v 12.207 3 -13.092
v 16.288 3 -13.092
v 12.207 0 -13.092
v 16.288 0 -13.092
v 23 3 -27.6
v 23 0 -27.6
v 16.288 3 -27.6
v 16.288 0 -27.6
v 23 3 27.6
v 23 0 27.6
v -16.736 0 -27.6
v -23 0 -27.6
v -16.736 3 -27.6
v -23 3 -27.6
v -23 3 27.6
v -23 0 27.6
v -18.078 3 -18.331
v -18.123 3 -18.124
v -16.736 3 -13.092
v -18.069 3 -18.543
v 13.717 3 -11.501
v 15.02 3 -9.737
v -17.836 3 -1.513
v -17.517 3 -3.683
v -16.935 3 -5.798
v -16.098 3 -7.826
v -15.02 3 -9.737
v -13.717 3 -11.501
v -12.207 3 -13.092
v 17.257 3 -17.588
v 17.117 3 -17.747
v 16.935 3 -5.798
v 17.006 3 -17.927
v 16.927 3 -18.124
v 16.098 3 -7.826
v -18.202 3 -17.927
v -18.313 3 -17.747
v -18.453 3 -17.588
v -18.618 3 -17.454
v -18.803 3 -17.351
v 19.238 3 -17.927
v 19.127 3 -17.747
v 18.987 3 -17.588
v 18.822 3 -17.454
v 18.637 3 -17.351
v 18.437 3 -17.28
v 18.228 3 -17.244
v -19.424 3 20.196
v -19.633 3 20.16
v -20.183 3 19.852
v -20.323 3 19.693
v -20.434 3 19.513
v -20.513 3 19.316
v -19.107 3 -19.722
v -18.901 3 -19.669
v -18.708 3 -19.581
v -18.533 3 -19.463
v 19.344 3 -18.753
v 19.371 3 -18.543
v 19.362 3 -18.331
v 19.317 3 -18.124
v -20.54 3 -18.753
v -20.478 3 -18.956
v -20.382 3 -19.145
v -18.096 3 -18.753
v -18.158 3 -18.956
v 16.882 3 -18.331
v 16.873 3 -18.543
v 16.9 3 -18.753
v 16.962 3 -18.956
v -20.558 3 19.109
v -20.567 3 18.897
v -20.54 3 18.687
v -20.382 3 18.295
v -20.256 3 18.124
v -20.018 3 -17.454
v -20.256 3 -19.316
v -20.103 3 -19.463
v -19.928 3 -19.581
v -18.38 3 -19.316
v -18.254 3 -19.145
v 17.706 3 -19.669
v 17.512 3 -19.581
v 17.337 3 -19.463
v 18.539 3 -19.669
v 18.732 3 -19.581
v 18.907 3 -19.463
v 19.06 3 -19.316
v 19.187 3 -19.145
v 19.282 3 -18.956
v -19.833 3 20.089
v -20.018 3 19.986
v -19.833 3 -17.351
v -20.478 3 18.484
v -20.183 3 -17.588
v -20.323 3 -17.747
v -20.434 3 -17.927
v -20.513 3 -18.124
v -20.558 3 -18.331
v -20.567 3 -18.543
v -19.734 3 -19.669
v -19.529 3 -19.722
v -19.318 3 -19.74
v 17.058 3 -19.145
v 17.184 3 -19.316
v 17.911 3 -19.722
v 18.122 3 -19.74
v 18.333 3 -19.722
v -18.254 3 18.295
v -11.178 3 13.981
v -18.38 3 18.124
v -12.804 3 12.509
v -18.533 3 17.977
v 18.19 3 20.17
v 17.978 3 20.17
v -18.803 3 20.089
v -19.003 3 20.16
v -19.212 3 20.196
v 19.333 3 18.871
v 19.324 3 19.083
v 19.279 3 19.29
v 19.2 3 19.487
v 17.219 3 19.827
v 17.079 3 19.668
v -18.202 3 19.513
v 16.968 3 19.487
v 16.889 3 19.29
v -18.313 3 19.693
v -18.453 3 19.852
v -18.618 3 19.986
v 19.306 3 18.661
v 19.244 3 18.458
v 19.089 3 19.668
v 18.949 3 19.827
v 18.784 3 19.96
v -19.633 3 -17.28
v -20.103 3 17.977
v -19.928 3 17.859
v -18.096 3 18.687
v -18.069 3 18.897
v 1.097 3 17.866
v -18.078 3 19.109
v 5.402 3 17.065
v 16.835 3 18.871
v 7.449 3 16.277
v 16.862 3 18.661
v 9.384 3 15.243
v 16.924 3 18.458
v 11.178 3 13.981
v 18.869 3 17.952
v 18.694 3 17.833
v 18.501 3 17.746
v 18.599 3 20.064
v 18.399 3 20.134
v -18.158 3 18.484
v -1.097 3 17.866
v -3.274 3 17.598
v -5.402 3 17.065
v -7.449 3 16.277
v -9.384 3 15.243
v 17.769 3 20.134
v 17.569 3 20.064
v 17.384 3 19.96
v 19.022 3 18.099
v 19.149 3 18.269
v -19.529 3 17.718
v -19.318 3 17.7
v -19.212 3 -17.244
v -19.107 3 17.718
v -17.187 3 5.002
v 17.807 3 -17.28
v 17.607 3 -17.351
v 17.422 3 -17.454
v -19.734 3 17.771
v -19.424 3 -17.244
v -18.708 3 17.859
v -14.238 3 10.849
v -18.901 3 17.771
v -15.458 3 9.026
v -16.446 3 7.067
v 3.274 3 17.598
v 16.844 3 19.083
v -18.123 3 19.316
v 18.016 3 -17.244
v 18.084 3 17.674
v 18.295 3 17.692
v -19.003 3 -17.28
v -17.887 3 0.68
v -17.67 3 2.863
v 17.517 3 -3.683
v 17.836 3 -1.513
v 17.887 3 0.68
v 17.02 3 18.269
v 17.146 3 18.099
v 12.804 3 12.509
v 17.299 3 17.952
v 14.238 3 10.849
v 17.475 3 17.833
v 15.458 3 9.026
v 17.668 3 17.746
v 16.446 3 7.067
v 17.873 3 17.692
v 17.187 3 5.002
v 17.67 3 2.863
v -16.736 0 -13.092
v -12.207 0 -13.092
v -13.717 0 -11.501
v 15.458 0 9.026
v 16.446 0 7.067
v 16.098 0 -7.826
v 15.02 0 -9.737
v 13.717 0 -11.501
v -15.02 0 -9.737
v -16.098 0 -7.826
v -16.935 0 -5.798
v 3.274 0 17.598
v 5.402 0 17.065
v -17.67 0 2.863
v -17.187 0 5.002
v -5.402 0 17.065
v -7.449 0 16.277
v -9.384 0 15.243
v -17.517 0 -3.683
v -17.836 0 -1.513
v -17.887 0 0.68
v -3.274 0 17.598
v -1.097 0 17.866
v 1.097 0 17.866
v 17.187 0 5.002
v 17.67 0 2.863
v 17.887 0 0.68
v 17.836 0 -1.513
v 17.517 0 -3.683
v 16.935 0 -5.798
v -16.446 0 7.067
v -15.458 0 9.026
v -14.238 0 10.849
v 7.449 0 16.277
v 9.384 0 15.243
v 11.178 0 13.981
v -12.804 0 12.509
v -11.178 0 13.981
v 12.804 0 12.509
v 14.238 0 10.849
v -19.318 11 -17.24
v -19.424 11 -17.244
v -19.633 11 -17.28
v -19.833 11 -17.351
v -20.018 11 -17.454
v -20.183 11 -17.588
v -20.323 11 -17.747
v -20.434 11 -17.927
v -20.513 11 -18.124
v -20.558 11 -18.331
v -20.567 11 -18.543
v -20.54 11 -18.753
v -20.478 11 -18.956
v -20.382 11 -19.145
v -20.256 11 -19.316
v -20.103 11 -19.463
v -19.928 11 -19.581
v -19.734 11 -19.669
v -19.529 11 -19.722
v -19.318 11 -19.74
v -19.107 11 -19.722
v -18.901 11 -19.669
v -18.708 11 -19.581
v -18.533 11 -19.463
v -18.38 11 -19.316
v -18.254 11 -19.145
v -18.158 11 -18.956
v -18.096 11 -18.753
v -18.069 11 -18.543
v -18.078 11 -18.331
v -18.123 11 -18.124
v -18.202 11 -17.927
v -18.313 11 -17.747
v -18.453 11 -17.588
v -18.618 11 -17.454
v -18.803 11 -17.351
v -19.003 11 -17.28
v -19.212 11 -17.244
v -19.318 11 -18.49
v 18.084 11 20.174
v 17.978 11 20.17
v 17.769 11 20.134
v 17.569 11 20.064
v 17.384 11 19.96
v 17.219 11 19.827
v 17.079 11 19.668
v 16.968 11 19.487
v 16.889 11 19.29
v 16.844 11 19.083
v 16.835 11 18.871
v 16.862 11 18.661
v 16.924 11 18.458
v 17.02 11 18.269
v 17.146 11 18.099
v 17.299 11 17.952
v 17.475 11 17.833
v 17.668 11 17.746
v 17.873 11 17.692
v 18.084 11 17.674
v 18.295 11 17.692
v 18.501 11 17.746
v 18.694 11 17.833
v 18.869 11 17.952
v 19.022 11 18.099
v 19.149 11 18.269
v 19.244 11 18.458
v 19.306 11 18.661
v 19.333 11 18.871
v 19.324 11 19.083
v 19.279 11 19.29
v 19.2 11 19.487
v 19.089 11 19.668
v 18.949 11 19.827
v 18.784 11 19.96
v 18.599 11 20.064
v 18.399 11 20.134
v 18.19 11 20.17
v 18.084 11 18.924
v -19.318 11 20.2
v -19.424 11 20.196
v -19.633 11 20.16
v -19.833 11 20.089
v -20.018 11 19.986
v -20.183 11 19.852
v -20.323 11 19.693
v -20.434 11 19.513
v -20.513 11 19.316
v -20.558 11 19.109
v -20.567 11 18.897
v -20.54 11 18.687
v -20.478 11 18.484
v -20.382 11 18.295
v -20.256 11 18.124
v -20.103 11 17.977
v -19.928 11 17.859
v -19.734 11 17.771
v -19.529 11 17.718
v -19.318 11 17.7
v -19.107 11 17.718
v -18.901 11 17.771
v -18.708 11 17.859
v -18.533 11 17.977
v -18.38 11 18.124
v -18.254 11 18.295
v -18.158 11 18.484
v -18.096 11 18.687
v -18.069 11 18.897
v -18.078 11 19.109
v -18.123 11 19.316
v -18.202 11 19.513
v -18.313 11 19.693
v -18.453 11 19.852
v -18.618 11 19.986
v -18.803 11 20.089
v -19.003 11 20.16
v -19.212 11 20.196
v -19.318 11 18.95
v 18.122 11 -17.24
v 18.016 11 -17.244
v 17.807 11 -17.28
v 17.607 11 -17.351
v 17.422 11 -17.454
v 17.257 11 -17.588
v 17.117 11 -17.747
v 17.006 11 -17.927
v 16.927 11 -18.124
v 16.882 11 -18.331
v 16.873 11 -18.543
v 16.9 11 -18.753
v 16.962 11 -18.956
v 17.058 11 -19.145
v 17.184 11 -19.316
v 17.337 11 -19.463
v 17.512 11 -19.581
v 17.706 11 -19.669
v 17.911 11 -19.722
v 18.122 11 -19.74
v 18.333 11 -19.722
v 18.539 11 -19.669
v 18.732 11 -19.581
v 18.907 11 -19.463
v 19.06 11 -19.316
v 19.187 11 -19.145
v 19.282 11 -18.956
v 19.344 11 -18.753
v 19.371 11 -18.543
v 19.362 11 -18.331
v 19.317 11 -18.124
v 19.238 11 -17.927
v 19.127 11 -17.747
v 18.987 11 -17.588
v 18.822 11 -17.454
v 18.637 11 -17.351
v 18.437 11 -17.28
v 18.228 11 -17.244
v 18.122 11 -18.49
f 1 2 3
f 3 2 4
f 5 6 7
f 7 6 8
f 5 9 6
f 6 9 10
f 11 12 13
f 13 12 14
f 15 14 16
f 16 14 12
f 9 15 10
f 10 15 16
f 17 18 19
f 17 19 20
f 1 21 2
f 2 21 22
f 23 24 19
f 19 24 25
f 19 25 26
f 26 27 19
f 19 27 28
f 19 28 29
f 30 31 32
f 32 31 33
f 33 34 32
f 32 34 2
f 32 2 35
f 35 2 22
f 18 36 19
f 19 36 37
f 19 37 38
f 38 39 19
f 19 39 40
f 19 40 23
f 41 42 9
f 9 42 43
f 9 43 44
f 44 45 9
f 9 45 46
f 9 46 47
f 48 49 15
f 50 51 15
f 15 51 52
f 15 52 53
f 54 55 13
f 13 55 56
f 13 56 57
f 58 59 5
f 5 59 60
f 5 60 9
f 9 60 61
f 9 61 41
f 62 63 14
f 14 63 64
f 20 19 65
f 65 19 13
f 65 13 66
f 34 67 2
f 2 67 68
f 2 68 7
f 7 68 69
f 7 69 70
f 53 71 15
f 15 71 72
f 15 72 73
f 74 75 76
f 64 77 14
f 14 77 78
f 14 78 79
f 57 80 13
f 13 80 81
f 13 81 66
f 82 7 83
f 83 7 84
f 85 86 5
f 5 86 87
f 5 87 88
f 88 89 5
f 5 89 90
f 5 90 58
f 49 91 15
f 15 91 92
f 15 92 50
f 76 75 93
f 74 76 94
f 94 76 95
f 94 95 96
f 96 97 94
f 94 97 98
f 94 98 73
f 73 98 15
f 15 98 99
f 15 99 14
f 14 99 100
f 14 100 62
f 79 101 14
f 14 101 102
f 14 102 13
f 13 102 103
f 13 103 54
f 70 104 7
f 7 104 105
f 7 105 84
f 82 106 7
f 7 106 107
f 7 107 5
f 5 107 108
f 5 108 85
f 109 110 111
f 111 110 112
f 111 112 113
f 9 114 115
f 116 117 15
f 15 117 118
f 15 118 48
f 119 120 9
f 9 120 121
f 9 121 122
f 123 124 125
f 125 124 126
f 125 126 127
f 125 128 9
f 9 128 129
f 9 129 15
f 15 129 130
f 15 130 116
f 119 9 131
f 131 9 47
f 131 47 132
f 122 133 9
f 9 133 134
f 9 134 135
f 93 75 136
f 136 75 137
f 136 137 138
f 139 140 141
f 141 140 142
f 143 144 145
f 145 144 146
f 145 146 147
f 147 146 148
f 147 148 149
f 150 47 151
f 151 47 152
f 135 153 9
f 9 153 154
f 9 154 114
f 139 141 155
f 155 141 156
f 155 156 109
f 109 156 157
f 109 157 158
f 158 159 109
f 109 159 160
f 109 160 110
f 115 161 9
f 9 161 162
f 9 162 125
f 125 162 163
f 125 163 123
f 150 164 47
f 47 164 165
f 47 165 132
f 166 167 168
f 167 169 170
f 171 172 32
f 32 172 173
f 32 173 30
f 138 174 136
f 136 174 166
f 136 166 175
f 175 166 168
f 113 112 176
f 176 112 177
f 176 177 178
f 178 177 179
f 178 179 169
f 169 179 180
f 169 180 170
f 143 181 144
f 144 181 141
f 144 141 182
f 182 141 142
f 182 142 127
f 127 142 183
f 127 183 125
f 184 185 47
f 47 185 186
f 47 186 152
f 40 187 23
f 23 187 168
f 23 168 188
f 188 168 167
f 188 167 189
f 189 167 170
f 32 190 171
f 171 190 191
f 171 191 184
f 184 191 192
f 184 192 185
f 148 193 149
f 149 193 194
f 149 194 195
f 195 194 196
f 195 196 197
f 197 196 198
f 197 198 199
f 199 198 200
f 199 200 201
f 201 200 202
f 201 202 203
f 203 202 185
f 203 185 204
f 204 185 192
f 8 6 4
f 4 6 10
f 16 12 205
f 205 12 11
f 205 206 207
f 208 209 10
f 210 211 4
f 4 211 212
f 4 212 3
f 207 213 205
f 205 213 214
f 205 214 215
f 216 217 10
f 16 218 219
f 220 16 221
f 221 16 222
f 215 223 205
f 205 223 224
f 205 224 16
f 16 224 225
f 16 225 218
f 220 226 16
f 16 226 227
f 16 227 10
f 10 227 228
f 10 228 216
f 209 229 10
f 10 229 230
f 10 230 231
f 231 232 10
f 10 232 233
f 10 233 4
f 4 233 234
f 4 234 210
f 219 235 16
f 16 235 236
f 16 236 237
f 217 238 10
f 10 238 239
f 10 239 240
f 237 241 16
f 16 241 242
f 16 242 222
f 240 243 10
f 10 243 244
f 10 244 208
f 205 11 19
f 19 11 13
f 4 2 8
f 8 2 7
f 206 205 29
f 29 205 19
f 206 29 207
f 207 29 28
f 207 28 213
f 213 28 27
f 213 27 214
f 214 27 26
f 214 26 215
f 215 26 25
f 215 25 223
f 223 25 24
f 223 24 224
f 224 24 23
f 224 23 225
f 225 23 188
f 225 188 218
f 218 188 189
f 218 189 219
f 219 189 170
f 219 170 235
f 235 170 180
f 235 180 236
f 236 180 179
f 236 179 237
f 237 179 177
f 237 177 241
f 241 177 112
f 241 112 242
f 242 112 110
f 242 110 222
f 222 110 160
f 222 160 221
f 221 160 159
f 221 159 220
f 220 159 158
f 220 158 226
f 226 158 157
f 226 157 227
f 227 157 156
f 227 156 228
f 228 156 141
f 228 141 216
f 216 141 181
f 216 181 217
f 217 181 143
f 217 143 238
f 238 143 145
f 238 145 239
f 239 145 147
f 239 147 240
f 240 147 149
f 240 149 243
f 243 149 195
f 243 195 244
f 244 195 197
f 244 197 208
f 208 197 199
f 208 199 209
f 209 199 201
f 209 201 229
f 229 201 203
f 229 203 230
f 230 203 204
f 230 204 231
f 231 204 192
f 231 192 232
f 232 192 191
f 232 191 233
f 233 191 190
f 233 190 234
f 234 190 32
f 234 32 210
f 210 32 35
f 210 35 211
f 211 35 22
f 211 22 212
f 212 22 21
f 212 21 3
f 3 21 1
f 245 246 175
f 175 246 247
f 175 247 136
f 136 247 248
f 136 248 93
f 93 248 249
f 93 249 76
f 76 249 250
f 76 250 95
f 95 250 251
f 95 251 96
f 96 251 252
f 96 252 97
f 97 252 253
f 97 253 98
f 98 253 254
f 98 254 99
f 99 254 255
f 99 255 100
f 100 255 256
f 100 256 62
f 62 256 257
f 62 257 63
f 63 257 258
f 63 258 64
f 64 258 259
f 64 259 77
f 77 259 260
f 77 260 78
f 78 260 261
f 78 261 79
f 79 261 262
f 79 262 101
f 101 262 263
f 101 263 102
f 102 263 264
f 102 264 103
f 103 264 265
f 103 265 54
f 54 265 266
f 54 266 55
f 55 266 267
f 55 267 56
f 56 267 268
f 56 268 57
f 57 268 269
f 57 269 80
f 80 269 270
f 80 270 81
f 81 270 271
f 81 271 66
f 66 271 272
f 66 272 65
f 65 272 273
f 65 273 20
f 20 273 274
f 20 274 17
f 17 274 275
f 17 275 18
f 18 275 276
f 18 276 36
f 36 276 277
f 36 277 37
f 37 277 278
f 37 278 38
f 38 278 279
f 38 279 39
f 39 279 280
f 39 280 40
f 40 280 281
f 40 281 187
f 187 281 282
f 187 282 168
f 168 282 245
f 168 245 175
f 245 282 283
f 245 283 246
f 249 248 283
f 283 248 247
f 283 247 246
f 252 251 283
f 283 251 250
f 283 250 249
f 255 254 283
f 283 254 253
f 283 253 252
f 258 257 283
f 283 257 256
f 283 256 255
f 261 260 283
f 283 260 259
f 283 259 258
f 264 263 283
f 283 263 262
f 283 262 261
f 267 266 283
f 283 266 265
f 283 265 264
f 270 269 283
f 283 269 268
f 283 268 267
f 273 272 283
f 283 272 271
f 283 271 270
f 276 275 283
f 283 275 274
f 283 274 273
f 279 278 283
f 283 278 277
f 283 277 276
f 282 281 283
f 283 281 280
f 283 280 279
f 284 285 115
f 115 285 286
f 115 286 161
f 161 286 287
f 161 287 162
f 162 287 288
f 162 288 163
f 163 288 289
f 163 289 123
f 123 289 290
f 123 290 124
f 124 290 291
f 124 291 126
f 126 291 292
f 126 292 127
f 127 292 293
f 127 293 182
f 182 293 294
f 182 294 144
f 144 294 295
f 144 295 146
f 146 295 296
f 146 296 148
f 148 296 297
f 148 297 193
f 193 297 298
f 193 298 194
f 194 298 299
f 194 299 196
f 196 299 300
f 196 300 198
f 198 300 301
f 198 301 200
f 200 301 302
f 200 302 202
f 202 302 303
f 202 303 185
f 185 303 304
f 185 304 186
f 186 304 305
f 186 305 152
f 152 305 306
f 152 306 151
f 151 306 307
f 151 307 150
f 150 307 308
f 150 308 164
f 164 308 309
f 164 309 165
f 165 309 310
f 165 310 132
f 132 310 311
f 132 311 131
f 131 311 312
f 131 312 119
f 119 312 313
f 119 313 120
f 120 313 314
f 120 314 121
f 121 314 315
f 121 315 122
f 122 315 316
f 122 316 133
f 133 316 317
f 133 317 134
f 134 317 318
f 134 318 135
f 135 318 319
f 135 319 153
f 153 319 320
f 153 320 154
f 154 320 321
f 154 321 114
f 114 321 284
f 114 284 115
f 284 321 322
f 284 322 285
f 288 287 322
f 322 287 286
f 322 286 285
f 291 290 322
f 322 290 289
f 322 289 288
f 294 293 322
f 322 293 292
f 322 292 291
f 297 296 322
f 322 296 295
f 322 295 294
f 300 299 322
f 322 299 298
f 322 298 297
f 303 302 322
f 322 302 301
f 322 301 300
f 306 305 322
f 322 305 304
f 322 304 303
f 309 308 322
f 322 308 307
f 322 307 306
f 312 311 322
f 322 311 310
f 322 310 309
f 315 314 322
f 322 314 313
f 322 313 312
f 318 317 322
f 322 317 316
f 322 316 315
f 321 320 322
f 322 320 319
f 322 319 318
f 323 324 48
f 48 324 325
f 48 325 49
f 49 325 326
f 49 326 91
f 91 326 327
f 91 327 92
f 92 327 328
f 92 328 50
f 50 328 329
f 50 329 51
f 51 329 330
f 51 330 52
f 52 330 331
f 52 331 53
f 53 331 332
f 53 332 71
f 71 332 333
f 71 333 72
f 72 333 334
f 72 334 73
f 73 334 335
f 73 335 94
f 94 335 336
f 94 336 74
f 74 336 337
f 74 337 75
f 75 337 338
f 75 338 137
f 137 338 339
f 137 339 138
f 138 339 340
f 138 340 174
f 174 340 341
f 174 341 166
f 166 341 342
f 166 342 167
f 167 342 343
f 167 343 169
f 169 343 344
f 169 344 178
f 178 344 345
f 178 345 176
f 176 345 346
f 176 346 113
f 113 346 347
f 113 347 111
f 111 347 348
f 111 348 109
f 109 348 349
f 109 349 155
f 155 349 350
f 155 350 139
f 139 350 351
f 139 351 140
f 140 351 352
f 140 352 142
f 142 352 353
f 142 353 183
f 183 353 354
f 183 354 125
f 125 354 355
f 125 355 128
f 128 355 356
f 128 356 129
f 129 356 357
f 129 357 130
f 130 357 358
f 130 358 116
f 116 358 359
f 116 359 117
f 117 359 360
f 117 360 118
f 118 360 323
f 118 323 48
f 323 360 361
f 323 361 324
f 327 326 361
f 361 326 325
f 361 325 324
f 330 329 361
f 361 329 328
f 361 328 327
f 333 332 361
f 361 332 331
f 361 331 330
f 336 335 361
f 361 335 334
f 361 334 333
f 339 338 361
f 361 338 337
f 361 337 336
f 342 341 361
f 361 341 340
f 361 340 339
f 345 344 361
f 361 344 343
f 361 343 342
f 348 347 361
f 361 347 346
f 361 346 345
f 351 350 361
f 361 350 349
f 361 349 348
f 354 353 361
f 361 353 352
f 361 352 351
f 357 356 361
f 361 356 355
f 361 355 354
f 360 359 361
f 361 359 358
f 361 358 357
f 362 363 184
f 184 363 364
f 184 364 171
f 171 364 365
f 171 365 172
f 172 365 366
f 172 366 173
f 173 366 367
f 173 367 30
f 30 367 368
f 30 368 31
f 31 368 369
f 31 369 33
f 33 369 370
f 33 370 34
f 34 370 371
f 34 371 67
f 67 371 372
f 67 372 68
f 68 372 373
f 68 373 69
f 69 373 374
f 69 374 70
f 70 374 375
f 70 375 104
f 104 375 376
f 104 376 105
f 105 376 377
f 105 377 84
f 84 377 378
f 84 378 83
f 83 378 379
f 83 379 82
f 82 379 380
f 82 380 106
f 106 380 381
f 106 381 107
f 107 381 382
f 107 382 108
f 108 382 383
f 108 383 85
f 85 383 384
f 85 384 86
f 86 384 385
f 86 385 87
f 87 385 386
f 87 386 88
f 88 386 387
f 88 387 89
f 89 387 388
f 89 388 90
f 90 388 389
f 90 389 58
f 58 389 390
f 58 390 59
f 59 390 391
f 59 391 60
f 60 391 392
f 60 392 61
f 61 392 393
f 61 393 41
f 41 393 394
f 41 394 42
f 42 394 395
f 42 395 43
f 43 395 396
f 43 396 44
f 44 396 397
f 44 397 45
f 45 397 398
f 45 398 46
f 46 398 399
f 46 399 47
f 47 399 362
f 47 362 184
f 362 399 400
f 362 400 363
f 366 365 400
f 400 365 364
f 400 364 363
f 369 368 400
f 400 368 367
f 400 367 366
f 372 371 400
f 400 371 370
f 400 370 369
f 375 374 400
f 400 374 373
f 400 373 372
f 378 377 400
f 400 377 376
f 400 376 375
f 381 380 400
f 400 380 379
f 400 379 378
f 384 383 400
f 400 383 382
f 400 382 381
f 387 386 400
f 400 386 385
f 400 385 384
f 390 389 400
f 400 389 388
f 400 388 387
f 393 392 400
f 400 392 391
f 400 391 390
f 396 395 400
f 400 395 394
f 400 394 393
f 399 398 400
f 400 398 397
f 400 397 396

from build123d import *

# Parameters (mm, degrees)
SKETCH1_W           = 46
SKETCH1_H           = 55.2
BOSS_EXTRUDE1_DEPTH = 3
SKETCH4_W           = 33.02335113
SKETCH4_H           = 20.828153407
CUT_EXTRUDE1_DEPTH  = 8
SKETCH3_R           = 17.9
CUT_EXTRUDE2_DEPTH  = 8
SKETCH5_R           = 1.25
BOSS_EXTRUDE2_DEPTH = 8


with BuildPart() as part:
    # Sketch1 → Boss-Extrude1 (new body)
    with BuildSketch(Plane(origin=(0, 0, 0), x_dir=(1, 0, 0), z_dir=(0, 1, 0))):
        Rectangle(SKETCH1_W, SKETCH1_H)
    extrude(amount=BOSS_EXTRUDE1_DEPTH)

    # Sketch4 → Cut-Extrude1 (cut)
    with BuildSketch(Plane(origin=(0, 3, 0), x_dir=(1, 0, 0), z_dir=(0, 1, 0))):
        with Locations((-0.224140392, 23.506208916)):
            Rectangle(SKETCH4_W, SKETCH4_H)
    extrude(amount=-CUT_EXTRUDE1_DEPTH, mode=Mode.SUBTRACT)

    # Sketch3 → Cut-Extrude2 (cut)
    with BuildSketch(Plane(origin=(0, 3, 0), x_dir=(1, 0, 0), z_dir=(0, 1, 0))):
        Circle(SKETCH3_R)
    extrude(amount=-CUT_EXTRUDE2_DEPTH, mode=Mode.SUBTRACT)

    # Sketch5 → Boss-Extrude2 (add)
    with BuildSketch(Plane(origin=(0, 3, 0), x_dir=(1, 0, 0), z_dir=(0, 1, 0))):
        with Locations(Location((-19.317913276, 18.489975821, 0), (0, 0, 90))):
            Circle(SKETCH5_R)
        with Locations(Location((18.122086724, 18.489975821, 0), (0, 0, 90))):
            Circle(SKETCH5_R)
        with Locations(Location((-19.317913276, -18.950024179, 0), (0, 0, 90))):
            Circle(SKETCH5_R)
        with Locations(Location((18.084134894, -18.924464602, 0), (0, 0, 90))):
            Circle(SKETCH5_R)
    extrude(amount=BOSS_EXTRUDE2_DEPTH)


solid = part.part
